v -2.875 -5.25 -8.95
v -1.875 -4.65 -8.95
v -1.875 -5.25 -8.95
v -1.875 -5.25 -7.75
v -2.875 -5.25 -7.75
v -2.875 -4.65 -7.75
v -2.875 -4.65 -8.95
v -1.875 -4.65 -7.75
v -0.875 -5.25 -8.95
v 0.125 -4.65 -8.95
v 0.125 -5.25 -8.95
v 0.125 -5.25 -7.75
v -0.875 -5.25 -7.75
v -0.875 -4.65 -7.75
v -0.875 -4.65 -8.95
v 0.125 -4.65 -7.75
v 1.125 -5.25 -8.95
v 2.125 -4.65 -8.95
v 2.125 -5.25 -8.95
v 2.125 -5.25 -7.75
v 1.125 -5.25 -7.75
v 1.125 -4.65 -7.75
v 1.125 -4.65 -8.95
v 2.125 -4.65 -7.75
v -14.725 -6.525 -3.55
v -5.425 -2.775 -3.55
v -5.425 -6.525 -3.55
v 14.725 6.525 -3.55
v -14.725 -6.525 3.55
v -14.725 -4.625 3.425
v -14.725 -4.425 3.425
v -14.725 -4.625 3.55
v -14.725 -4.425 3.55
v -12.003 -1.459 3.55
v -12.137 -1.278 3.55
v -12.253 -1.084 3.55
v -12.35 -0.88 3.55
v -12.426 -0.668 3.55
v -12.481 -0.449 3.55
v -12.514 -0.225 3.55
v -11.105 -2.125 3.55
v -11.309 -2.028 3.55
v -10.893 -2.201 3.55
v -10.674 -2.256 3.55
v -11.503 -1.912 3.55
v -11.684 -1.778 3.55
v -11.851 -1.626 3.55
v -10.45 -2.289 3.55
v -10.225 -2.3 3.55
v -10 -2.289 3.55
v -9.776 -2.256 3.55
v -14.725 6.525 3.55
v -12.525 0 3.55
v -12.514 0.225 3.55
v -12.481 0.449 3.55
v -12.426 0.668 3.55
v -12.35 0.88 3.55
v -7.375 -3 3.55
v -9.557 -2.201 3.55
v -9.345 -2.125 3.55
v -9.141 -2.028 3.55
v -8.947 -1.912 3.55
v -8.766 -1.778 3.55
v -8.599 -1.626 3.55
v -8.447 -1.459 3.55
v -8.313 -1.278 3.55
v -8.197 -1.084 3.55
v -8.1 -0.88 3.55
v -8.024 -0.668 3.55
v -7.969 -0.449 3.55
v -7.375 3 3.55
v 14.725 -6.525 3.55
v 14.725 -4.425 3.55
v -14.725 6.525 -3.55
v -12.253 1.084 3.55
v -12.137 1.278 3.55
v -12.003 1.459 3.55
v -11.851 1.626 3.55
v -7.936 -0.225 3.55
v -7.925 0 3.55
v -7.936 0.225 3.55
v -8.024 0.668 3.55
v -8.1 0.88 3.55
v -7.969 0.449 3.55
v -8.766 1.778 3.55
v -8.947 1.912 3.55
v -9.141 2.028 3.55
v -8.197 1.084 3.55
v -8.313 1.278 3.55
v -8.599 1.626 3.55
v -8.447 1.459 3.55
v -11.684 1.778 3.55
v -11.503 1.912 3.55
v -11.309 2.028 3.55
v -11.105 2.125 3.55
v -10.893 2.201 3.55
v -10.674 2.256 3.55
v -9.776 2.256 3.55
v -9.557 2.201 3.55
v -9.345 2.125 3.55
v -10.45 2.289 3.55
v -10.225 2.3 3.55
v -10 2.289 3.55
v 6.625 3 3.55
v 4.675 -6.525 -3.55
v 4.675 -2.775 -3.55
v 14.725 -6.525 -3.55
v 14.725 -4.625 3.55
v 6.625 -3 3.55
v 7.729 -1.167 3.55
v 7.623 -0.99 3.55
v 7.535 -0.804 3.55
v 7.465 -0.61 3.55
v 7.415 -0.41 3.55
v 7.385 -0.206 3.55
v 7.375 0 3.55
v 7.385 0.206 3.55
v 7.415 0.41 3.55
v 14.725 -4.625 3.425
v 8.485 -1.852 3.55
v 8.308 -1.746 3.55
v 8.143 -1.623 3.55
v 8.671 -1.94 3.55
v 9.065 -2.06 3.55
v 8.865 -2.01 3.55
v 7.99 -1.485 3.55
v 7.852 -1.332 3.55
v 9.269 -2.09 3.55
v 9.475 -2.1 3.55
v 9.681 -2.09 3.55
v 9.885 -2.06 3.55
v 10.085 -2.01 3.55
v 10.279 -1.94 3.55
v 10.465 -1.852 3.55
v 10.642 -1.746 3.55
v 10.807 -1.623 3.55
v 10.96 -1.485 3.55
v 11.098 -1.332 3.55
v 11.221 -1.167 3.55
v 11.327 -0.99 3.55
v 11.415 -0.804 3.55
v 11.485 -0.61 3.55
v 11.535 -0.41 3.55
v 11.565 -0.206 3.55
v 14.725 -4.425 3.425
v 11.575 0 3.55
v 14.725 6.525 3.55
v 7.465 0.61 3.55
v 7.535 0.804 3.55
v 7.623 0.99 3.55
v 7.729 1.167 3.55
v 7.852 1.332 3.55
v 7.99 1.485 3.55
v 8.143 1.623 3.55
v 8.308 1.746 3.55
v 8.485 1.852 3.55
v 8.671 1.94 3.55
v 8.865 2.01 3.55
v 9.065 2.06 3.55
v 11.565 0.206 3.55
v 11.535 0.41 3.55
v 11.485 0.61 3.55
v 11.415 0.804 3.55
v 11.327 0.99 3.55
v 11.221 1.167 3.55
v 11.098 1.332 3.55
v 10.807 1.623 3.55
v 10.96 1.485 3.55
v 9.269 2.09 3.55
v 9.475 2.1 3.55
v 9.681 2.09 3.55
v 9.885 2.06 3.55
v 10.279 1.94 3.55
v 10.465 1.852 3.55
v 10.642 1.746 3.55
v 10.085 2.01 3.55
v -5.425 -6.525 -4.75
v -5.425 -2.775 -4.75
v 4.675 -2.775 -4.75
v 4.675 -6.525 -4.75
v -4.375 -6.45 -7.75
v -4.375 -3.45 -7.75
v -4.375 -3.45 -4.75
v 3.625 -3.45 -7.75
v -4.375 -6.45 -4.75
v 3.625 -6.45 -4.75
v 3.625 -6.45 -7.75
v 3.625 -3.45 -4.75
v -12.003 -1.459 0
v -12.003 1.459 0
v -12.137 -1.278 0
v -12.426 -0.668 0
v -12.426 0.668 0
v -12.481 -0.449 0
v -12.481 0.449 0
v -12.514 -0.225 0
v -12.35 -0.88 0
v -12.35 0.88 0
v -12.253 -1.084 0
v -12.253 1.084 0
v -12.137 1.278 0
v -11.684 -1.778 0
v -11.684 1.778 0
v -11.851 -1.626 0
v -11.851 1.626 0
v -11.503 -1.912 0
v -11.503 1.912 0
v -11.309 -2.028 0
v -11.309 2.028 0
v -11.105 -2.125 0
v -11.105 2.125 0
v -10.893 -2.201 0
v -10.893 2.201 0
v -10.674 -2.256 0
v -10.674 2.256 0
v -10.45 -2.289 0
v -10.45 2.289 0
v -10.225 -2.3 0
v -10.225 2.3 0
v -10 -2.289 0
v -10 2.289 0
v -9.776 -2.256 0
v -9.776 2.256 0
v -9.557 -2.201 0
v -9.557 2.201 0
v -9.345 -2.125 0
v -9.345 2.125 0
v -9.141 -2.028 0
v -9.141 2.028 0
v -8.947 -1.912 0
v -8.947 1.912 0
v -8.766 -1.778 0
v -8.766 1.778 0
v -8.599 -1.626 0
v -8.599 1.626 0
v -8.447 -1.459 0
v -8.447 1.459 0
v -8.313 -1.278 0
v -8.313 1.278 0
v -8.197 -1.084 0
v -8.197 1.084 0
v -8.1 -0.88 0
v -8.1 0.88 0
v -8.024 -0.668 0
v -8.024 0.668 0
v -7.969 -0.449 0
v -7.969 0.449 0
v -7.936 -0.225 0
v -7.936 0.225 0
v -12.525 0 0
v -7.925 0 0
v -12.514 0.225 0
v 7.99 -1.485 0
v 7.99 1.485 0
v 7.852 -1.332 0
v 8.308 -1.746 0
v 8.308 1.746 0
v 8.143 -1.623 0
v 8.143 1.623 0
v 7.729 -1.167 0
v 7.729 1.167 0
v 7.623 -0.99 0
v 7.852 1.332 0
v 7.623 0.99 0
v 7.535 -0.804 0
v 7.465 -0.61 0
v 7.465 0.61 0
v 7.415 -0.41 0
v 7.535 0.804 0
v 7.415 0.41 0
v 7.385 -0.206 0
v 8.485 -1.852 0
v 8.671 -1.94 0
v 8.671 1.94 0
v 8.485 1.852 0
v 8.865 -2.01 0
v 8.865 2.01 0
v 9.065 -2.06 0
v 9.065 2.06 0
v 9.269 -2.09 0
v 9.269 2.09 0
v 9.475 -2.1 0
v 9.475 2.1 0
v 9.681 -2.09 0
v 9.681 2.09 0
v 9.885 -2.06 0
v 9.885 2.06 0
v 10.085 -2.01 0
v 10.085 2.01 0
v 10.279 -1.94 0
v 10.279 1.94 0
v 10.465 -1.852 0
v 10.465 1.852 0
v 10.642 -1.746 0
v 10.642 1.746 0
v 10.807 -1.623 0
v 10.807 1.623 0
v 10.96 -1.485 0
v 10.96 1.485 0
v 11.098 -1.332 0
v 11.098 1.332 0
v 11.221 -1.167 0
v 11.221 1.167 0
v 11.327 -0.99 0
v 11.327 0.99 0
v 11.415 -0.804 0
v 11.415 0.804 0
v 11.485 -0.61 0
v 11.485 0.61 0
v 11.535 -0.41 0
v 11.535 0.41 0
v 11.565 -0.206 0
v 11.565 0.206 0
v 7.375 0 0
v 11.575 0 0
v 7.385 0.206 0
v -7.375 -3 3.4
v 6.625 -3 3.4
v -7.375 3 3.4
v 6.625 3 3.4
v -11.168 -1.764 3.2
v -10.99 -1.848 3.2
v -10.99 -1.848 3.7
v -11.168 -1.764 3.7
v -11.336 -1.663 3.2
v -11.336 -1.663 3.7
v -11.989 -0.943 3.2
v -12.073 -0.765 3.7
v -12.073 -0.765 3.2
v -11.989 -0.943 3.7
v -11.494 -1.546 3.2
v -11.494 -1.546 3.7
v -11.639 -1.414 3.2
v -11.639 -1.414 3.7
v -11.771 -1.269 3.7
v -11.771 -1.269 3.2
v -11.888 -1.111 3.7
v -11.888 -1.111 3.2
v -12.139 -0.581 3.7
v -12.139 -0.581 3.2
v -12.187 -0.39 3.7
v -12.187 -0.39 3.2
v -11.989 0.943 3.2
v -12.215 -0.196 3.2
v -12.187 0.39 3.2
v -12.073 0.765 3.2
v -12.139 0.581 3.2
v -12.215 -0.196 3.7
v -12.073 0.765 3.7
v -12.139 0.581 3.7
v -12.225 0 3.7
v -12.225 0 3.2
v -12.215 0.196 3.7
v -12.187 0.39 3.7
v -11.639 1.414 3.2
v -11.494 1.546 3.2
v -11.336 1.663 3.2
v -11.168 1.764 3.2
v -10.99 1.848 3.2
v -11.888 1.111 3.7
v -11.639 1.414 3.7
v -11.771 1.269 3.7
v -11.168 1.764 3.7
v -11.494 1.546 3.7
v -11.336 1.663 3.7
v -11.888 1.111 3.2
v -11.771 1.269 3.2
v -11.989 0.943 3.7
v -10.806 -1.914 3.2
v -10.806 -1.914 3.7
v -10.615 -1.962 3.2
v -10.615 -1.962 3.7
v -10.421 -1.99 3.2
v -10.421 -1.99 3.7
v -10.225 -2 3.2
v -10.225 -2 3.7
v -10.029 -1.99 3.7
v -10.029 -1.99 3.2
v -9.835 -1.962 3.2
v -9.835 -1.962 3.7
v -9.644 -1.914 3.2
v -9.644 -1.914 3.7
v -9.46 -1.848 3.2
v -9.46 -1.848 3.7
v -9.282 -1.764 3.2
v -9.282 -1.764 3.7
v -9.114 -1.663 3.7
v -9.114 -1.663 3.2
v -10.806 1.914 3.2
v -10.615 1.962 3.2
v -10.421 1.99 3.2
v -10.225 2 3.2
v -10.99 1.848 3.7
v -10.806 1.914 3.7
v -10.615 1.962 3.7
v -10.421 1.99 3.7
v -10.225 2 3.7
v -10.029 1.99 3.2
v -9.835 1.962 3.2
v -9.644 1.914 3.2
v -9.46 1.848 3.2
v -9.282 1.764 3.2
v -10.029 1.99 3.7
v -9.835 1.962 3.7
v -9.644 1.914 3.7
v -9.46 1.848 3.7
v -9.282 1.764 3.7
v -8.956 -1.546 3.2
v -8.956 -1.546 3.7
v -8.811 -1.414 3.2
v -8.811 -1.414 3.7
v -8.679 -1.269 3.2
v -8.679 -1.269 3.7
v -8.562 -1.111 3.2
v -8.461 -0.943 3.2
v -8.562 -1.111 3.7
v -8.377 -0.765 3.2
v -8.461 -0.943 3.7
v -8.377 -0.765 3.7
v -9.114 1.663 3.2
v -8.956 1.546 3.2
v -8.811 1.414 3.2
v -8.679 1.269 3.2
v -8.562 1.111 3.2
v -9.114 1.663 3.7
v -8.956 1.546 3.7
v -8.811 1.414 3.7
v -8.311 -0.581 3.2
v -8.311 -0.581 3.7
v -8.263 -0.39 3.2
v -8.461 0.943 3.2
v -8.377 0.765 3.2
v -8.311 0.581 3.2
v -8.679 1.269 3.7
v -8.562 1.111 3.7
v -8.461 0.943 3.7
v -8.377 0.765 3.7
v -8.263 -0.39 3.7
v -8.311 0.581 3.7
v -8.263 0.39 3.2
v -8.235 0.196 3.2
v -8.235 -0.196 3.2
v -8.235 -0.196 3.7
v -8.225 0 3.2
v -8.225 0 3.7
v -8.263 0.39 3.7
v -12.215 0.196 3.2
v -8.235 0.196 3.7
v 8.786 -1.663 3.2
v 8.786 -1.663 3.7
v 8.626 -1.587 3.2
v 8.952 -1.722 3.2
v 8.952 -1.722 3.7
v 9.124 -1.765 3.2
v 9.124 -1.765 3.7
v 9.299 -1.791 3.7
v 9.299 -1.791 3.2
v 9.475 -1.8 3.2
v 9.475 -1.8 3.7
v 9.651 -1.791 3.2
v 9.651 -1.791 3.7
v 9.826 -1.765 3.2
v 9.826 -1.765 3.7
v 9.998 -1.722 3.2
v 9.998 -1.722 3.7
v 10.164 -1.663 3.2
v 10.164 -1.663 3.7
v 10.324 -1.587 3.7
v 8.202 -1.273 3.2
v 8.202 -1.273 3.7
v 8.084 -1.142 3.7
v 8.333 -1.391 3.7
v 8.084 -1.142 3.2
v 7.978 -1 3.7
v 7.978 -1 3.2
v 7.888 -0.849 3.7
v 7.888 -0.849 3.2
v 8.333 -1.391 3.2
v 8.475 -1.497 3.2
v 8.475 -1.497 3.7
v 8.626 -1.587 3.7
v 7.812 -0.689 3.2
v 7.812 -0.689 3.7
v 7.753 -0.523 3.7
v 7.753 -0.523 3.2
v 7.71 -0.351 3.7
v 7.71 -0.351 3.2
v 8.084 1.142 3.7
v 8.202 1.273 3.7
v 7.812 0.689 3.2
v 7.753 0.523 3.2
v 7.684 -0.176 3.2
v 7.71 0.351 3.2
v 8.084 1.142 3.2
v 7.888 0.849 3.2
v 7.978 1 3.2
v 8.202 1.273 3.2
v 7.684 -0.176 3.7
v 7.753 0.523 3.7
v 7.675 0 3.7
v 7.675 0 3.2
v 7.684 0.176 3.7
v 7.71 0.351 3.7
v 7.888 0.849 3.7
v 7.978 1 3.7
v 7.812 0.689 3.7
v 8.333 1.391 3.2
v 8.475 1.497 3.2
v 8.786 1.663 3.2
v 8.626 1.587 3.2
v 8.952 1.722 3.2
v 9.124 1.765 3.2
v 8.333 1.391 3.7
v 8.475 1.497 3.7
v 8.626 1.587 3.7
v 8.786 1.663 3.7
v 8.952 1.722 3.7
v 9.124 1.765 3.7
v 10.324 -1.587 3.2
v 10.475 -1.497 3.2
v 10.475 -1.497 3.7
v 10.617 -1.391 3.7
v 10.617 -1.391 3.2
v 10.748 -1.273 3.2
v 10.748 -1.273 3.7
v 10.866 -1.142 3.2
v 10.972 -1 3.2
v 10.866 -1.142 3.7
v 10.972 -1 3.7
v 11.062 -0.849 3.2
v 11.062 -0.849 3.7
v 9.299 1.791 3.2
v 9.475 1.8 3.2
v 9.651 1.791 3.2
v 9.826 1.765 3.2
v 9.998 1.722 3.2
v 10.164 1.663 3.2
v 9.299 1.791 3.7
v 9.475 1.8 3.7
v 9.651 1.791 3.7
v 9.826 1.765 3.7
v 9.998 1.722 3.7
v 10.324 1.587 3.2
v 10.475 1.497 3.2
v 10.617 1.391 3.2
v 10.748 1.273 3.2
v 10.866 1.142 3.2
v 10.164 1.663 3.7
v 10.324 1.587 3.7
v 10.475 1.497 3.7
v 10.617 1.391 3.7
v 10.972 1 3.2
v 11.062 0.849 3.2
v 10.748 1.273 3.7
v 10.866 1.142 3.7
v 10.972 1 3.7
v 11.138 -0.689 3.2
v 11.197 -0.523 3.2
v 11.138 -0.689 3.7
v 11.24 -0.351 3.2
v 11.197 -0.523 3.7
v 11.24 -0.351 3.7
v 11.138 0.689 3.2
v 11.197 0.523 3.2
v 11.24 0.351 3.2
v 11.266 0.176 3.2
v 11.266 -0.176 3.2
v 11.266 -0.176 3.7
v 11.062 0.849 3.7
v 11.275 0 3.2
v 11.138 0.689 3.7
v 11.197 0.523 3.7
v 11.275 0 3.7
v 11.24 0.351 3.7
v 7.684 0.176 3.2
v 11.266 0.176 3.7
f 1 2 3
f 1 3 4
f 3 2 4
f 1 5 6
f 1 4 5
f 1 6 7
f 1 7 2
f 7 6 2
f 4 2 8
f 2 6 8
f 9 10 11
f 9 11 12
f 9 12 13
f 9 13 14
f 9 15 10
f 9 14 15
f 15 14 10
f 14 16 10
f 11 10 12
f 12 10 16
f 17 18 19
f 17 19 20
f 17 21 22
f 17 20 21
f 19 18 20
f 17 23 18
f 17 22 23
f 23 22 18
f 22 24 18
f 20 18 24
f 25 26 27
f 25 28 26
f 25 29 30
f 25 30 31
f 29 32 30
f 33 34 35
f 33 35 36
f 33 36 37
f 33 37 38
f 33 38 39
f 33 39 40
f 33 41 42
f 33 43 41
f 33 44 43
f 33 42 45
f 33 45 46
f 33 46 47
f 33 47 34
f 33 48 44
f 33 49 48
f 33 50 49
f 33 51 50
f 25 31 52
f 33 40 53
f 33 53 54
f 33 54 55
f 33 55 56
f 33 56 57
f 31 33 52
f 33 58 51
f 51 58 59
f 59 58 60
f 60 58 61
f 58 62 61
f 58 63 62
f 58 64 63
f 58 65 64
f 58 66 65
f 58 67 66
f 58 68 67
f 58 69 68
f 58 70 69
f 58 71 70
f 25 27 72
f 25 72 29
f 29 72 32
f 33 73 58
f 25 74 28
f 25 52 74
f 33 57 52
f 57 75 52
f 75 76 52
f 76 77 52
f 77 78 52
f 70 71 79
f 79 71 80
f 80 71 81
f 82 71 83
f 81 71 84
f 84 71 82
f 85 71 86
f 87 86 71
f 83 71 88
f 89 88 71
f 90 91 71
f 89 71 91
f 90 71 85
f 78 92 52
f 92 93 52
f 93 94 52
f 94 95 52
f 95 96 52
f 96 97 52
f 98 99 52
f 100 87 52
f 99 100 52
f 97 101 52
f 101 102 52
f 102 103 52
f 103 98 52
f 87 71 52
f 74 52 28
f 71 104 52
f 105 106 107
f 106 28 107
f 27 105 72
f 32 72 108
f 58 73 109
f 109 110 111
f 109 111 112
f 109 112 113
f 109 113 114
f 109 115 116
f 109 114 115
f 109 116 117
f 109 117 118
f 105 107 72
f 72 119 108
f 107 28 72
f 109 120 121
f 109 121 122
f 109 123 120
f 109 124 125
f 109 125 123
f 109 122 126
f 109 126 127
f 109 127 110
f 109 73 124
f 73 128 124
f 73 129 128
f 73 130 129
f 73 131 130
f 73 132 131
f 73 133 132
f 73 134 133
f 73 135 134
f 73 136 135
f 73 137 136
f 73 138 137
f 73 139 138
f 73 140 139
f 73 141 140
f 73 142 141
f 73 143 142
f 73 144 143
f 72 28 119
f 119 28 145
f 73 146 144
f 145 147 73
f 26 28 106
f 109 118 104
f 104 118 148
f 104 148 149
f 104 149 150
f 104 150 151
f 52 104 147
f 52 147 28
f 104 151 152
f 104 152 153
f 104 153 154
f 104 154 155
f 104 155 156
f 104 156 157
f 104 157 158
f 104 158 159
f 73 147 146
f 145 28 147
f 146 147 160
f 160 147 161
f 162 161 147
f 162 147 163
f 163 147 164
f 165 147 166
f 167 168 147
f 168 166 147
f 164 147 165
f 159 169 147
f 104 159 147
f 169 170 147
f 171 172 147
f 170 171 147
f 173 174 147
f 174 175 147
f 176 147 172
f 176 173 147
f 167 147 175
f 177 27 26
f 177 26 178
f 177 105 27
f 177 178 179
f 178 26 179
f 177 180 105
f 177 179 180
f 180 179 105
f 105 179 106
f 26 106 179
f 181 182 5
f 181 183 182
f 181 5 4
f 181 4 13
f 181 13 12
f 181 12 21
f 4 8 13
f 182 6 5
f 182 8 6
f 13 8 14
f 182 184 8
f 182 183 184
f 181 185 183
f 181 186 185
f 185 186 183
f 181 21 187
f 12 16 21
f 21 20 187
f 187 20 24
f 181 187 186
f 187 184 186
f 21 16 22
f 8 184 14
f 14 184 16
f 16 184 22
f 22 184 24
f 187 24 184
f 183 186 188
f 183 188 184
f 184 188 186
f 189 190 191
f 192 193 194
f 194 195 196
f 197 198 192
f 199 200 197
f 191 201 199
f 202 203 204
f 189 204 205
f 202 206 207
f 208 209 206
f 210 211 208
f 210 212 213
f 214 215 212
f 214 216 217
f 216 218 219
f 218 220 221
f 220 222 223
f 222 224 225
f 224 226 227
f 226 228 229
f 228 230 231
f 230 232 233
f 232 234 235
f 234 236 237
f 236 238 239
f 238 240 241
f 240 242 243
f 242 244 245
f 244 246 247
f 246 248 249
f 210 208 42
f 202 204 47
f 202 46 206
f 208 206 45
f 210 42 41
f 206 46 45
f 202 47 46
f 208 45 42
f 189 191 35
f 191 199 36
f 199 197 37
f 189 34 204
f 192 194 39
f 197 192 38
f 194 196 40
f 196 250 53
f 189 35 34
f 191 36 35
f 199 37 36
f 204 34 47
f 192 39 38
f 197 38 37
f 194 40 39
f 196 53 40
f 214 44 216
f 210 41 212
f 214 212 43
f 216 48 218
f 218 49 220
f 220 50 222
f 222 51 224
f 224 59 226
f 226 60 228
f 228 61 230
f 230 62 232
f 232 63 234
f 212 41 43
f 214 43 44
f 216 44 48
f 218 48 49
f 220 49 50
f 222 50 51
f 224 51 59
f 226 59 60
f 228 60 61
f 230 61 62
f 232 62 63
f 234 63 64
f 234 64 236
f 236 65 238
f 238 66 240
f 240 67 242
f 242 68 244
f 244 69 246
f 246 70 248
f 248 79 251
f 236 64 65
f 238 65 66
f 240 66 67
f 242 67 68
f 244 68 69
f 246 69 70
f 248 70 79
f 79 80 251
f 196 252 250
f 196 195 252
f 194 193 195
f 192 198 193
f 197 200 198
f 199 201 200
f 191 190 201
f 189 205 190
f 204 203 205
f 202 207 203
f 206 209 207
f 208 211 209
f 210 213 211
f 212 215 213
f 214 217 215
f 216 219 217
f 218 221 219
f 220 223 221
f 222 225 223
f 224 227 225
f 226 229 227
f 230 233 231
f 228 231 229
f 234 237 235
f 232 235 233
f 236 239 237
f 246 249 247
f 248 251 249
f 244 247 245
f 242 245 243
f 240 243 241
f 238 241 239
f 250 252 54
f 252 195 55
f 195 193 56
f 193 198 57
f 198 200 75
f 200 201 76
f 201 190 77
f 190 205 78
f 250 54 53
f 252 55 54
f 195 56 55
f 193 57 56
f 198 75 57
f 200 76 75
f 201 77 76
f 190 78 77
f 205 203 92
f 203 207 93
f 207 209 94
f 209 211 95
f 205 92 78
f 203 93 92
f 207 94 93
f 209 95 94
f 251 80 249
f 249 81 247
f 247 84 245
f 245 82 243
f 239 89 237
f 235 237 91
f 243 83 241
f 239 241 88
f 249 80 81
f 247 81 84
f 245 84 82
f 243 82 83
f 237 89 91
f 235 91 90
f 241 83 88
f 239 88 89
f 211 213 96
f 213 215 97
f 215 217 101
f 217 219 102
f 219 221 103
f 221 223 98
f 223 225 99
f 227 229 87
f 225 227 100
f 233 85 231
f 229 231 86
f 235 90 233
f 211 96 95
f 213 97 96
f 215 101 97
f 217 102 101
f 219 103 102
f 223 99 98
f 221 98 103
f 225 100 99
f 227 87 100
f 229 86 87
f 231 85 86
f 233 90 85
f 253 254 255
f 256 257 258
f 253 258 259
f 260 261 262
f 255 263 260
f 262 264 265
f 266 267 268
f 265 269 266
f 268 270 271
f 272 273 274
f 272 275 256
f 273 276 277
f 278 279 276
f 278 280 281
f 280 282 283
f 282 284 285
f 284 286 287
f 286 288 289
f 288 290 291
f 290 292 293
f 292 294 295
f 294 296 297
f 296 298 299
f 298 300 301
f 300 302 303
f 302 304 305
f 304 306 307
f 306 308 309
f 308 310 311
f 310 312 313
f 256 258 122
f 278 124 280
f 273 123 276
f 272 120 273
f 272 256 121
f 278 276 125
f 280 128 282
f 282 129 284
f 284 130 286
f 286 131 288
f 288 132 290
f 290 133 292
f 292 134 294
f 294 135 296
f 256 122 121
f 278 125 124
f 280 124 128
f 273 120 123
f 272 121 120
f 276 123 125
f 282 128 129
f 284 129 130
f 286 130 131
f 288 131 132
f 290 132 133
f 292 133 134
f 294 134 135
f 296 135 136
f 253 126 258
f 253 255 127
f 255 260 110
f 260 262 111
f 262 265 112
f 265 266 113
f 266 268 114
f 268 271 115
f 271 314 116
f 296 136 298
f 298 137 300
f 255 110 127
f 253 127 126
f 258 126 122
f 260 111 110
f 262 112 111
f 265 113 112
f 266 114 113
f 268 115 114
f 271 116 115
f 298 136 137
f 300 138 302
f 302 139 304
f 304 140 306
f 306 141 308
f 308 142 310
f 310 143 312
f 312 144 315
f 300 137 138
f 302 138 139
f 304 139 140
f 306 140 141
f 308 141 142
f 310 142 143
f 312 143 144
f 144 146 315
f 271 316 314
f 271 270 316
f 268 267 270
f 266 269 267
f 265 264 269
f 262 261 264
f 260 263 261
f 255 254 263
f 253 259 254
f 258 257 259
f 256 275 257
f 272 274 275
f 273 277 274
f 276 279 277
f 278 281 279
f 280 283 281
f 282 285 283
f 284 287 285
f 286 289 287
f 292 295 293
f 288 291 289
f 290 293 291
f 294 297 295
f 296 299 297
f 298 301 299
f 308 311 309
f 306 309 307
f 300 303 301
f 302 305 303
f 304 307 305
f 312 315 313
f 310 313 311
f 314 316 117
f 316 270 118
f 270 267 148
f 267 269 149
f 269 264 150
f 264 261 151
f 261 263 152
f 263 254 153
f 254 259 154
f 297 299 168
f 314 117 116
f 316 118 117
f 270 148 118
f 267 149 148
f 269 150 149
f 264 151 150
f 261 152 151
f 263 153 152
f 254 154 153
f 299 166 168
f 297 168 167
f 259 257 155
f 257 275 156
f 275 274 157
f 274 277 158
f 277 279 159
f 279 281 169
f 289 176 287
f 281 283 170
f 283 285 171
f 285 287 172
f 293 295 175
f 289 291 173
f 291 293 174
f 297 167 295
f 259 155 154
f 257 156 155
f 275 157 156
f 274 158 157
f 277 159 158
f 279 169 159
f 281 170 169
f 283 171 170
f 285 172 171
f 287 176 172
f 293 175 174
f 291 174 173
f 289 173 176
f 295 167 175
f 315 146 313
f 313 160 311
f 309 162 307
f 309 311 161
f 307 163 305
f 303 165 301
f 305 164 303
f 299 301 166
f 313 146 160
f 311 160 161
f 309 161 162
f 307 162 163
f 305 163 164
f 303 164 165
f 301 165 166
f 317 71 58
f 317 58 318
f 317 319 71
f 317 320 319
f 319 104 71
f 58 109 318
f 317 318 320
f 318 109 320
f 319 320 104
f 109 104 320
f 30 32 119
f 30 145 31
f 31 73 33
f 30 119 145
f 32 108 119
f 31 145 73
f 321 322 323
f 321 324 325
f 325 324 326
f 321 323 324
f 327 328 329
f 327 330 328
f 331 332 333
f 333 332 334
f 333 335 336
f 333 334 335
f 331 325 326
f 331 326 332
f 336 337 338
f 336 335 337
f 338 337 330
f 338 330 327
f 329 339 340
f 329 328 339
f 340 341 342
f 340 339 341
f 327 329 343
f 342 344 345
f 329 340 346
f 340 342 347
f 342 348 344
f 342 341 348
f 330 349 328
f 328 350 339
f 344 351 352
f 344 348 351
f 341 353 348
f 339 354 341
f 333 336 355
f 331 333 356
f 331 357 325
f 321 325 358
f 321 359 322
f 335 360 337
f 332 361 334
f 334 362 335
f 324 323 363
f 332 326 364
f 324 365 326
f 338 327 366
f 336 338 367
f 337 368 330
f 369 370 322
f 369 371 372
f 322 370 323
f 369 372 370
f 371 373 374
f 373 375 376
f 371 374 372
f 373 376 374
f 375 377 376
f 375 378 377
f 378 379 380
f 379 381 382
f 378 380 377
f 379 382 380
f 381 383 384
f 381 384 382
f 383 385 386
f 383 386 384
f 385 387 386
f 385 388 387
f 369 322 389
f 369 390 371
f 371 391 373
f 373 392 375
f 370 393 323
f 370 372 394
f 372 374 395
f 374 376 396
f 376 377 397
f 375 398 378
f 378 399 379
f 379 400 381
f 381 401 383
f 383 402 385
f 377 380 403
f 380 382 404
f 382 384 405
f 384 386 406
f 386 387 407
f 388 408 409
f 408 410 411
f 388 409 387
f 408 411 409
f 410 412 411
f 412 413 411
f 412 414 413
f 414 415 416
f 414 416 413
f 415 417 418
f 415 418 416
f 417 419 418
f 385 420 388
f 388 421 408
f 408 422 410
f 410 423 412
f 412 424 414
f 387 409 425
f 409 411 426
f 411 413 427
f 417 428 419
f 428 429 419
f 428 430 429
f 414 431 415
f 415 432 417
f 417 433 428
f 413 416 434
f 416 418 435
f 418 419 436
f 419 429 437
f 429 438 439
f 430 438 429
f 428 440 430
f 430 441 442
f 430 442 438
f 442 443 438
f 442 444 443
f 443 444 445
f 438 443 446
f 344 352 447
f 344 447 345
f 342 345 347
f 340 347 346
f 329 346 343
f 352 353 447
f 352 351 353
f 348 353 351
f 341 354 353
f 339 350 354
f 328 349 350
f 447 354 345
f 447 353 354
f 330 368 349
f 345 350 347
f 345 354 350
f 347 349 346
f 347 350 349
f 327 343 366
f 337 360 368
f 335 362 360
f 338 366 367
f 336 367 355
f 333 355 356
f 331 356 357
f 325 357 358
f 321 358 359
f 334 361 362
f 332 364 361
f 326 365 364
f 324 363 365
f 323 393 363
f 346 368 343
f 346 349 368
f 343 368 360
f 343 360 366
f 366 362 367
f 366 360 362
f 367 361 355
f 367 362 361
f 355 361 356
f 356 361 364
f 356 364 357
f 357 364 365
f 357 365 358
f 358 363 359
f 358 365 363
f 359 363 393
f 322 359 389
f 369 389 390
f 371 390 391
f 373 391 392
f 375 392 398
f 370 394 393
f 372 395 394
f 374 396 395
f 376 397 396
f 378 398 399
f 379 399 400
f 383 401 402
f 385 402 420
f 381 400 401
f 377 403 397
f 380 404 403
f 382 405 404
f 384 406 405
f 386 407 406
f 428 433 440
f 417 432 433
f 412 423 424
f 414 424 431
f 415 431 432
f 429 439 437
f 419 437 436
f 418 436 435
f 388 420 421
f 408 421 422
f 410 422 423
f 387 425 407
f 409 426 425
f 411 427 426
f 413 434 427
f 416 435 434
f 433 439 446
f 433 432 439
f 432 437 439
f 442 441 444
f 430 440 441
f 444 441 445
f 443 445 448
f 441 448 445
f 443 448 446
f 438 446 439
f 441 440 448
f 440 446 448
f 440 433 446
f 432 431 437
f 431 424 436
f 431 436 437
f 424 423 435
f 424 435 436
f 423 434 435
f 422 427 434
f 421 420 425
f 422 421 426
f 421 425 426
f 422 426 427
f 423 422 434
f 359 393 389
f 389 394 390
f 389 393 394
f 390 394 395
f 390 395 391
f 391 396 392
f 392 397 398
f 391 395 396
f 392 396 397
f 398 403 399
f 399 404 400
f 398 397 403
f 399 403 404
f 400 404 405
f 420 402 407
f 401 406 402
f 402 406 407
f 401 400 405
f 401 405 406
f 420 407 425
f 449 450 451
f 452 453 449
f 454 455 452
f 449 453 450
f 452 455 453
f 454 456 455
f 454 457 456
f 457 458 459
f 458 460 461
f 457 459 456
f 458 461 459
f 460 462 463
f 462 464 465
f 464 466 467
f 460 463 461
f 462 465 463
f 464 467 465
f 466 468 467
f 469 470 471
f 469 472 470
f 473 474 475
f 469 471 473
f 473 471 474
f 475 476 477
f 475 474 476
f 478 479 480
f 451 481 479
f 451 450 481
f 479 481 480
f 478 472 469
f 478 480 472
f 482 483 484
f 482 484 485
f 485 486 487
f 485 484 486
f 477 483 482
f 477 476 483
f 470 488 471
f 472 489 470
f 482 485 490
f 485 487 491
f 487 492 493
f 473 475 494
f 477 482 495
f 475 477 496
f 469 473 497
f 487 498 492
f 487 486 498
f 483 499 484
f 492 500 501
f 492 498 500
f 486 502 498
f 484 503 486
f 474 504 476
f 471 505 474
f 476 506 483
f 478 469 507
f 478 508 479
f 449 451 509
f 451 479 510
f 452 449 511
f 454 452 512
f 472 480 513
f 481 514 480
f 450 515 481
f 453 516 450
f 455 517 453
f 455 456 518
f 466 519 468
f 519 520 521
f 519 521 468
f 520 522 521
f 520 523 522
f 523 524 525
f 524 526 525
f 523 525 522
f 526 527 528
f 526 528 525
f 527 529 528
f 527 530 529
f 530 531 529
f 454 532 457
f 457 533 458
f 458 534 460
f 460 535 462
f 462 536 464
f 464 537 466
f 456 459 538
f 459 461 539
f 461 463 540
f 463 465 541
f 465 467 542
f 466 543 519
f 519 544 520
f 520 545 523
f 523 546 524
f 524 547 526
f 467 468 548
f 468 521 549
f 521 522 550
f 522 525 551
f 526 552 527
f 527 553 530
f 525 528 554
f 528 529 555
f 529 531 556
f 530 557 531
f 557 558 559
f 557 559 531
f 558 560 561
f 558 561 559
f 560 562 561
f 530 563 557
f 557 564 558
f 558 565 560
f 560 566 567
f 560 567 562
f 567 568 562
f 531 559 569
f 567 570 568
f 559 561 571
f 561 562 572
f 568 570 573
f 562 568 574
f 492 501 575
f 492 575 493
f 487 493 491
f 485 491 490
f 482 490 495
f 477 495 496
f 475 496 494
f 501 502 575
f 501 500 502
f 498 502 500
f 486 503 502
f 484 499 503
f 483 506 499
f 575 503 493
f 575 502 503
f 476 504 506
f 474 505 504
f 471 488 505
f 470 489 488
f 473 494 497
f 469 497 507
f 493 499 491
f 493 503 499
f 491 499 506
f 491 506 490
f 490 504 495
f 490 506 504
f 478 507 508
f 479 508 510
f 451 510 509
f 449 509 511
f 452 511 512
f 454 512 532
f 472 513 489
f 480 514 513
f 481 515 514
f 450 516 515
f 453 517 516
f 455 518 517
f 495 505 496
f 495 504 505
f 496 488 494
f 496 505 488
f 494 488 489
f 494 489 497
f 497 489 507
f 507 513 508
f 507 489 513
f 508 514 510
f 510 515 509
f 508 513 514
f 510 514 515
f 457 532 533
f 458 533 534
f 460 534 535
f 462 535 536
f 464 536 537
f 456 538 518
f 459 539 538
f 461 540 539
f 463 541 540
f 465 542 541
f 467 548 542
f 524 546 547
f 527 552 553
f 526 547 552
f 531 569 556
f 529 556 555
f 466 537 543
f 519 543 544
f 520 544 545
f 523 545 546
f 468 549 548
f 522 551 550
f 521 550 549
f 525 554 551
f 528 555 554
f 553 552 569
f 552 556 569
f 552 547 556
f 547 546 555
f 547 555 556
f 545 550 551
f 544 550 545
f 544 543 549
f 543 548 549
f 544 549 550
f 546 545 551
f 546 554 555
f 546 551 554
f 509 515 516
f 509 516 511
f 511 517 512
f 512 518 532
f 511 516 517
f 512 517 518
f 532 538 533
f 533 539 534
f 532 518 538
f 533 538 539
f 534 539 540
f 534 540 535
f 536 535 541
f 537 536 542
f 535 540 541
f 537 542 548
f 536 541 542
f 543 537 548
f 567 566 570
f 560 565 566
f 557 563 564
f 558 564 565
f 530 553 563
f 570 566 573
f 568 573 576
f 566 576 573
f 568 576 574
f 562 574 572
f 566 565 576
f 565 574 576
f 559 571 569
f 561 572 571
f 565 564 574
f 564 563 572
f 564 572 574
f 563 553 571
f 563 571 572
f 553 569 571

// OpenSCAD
// Sharp GP2Y0D413K0F - infrared distance sensor
// Coordinate system: unit mm, body center at origin,
// mounting face (PWB / connector side) -> -Z, lens face -> +Z
//
// Dimension mapping (from "Outline Dimensions", unit mm):
//   W  = 29.45   overall width  (X)
//   H  = 13.05   case height    (Y)
//   D  =  7.1   case depth      (Z)
//   lens centers: 4.5 and 19.7 from left edge (lens-center dims)
//   PWB / connector tab: 10.1 x 3.75, protruding at -Z / bottom

W  = 29.45;                 // overall width  (X)
H  = 13.05;                 // case height    (Y)
D  =  7.1;                  // case depth     (Z)

em  = -W/2 + 4.5;           // light-emitter center X
det =  em  + 19.7;          // light-detector center X
xc  = (em + det) / 2;      // approximate center of optics / PWB

tabW = 10.1;               // PWB / connector width
tabH =  3.75;              // PWB / connector height
ytab = -H/2 + tabH/2;     // tab sits at the bottom edge
pwbD =  1.2;              // PWB protrusion depth (-Z)

r_em  = 2.3;              // emitter lens radius (approx)
r_det = 2.1;              // detector lens radius (approx)

// ---------------- main solid (case + PWB + connector) ----------------
difference() {
    union() {
        // main lens-case body
        cube([W, H, D], center = true);

        // PWB / connector tab at the back (-Z), bottom edge
        translate([xc, ytab, -D/2 - pwbD/2])
            cube([tabW, tabH, pwbD], center = true);

        // connector housing
        translate([xc, ytab - 0.3, -D/2 - pwbD - 1.5])
            cube([8, 3, 3.0], center = true);

        // 3 connector pins (Vo, GND, Vcc)
        for (i = [-1, 0, 1])
            translate([xc + i*2.0, ytab - 0.3, -D/2 - pwbD - 3.0 - 0.6])
                cube([1.0, 0.6, 1.2], center = true);
    }

    // ----- cuts -----
    // lens bores (through the front face)
    translate([em,  0, 0]) cylinder(h = D + 2, d = 2*r_em,  $fn = 64);
    translate([det, 0, 0]) cylinder(h = D + 2, d = 2*r_det, $fn = 64);

    // front window recess (between the two lenses)
    translate([xc, 0, D/2]) cube([14, 6, 0.3], center = true);

    // horizontal seam line on the front face
    translate([0, -H/2 + 2.0, D/2]) cube([W, 0.2, 0.25], center = true);
}

// ---------------- lenses (acrylic) seated in the bores ----------------
color([0.6, 0.7, 0.85, 1]) {
    translate([em,  0, 0]) translate([0, 0, D/2 - 0.35])
        cylinder(h = 0.5, d = 2*(r_em  - 0.3), $fn = 64);
    translate([det, 0, 0]) translate([0, 0, D/2 - 0.35])
        cylinder(h = 0.5, d = 2*(r_det - 0.3), $fn = 64);
}
